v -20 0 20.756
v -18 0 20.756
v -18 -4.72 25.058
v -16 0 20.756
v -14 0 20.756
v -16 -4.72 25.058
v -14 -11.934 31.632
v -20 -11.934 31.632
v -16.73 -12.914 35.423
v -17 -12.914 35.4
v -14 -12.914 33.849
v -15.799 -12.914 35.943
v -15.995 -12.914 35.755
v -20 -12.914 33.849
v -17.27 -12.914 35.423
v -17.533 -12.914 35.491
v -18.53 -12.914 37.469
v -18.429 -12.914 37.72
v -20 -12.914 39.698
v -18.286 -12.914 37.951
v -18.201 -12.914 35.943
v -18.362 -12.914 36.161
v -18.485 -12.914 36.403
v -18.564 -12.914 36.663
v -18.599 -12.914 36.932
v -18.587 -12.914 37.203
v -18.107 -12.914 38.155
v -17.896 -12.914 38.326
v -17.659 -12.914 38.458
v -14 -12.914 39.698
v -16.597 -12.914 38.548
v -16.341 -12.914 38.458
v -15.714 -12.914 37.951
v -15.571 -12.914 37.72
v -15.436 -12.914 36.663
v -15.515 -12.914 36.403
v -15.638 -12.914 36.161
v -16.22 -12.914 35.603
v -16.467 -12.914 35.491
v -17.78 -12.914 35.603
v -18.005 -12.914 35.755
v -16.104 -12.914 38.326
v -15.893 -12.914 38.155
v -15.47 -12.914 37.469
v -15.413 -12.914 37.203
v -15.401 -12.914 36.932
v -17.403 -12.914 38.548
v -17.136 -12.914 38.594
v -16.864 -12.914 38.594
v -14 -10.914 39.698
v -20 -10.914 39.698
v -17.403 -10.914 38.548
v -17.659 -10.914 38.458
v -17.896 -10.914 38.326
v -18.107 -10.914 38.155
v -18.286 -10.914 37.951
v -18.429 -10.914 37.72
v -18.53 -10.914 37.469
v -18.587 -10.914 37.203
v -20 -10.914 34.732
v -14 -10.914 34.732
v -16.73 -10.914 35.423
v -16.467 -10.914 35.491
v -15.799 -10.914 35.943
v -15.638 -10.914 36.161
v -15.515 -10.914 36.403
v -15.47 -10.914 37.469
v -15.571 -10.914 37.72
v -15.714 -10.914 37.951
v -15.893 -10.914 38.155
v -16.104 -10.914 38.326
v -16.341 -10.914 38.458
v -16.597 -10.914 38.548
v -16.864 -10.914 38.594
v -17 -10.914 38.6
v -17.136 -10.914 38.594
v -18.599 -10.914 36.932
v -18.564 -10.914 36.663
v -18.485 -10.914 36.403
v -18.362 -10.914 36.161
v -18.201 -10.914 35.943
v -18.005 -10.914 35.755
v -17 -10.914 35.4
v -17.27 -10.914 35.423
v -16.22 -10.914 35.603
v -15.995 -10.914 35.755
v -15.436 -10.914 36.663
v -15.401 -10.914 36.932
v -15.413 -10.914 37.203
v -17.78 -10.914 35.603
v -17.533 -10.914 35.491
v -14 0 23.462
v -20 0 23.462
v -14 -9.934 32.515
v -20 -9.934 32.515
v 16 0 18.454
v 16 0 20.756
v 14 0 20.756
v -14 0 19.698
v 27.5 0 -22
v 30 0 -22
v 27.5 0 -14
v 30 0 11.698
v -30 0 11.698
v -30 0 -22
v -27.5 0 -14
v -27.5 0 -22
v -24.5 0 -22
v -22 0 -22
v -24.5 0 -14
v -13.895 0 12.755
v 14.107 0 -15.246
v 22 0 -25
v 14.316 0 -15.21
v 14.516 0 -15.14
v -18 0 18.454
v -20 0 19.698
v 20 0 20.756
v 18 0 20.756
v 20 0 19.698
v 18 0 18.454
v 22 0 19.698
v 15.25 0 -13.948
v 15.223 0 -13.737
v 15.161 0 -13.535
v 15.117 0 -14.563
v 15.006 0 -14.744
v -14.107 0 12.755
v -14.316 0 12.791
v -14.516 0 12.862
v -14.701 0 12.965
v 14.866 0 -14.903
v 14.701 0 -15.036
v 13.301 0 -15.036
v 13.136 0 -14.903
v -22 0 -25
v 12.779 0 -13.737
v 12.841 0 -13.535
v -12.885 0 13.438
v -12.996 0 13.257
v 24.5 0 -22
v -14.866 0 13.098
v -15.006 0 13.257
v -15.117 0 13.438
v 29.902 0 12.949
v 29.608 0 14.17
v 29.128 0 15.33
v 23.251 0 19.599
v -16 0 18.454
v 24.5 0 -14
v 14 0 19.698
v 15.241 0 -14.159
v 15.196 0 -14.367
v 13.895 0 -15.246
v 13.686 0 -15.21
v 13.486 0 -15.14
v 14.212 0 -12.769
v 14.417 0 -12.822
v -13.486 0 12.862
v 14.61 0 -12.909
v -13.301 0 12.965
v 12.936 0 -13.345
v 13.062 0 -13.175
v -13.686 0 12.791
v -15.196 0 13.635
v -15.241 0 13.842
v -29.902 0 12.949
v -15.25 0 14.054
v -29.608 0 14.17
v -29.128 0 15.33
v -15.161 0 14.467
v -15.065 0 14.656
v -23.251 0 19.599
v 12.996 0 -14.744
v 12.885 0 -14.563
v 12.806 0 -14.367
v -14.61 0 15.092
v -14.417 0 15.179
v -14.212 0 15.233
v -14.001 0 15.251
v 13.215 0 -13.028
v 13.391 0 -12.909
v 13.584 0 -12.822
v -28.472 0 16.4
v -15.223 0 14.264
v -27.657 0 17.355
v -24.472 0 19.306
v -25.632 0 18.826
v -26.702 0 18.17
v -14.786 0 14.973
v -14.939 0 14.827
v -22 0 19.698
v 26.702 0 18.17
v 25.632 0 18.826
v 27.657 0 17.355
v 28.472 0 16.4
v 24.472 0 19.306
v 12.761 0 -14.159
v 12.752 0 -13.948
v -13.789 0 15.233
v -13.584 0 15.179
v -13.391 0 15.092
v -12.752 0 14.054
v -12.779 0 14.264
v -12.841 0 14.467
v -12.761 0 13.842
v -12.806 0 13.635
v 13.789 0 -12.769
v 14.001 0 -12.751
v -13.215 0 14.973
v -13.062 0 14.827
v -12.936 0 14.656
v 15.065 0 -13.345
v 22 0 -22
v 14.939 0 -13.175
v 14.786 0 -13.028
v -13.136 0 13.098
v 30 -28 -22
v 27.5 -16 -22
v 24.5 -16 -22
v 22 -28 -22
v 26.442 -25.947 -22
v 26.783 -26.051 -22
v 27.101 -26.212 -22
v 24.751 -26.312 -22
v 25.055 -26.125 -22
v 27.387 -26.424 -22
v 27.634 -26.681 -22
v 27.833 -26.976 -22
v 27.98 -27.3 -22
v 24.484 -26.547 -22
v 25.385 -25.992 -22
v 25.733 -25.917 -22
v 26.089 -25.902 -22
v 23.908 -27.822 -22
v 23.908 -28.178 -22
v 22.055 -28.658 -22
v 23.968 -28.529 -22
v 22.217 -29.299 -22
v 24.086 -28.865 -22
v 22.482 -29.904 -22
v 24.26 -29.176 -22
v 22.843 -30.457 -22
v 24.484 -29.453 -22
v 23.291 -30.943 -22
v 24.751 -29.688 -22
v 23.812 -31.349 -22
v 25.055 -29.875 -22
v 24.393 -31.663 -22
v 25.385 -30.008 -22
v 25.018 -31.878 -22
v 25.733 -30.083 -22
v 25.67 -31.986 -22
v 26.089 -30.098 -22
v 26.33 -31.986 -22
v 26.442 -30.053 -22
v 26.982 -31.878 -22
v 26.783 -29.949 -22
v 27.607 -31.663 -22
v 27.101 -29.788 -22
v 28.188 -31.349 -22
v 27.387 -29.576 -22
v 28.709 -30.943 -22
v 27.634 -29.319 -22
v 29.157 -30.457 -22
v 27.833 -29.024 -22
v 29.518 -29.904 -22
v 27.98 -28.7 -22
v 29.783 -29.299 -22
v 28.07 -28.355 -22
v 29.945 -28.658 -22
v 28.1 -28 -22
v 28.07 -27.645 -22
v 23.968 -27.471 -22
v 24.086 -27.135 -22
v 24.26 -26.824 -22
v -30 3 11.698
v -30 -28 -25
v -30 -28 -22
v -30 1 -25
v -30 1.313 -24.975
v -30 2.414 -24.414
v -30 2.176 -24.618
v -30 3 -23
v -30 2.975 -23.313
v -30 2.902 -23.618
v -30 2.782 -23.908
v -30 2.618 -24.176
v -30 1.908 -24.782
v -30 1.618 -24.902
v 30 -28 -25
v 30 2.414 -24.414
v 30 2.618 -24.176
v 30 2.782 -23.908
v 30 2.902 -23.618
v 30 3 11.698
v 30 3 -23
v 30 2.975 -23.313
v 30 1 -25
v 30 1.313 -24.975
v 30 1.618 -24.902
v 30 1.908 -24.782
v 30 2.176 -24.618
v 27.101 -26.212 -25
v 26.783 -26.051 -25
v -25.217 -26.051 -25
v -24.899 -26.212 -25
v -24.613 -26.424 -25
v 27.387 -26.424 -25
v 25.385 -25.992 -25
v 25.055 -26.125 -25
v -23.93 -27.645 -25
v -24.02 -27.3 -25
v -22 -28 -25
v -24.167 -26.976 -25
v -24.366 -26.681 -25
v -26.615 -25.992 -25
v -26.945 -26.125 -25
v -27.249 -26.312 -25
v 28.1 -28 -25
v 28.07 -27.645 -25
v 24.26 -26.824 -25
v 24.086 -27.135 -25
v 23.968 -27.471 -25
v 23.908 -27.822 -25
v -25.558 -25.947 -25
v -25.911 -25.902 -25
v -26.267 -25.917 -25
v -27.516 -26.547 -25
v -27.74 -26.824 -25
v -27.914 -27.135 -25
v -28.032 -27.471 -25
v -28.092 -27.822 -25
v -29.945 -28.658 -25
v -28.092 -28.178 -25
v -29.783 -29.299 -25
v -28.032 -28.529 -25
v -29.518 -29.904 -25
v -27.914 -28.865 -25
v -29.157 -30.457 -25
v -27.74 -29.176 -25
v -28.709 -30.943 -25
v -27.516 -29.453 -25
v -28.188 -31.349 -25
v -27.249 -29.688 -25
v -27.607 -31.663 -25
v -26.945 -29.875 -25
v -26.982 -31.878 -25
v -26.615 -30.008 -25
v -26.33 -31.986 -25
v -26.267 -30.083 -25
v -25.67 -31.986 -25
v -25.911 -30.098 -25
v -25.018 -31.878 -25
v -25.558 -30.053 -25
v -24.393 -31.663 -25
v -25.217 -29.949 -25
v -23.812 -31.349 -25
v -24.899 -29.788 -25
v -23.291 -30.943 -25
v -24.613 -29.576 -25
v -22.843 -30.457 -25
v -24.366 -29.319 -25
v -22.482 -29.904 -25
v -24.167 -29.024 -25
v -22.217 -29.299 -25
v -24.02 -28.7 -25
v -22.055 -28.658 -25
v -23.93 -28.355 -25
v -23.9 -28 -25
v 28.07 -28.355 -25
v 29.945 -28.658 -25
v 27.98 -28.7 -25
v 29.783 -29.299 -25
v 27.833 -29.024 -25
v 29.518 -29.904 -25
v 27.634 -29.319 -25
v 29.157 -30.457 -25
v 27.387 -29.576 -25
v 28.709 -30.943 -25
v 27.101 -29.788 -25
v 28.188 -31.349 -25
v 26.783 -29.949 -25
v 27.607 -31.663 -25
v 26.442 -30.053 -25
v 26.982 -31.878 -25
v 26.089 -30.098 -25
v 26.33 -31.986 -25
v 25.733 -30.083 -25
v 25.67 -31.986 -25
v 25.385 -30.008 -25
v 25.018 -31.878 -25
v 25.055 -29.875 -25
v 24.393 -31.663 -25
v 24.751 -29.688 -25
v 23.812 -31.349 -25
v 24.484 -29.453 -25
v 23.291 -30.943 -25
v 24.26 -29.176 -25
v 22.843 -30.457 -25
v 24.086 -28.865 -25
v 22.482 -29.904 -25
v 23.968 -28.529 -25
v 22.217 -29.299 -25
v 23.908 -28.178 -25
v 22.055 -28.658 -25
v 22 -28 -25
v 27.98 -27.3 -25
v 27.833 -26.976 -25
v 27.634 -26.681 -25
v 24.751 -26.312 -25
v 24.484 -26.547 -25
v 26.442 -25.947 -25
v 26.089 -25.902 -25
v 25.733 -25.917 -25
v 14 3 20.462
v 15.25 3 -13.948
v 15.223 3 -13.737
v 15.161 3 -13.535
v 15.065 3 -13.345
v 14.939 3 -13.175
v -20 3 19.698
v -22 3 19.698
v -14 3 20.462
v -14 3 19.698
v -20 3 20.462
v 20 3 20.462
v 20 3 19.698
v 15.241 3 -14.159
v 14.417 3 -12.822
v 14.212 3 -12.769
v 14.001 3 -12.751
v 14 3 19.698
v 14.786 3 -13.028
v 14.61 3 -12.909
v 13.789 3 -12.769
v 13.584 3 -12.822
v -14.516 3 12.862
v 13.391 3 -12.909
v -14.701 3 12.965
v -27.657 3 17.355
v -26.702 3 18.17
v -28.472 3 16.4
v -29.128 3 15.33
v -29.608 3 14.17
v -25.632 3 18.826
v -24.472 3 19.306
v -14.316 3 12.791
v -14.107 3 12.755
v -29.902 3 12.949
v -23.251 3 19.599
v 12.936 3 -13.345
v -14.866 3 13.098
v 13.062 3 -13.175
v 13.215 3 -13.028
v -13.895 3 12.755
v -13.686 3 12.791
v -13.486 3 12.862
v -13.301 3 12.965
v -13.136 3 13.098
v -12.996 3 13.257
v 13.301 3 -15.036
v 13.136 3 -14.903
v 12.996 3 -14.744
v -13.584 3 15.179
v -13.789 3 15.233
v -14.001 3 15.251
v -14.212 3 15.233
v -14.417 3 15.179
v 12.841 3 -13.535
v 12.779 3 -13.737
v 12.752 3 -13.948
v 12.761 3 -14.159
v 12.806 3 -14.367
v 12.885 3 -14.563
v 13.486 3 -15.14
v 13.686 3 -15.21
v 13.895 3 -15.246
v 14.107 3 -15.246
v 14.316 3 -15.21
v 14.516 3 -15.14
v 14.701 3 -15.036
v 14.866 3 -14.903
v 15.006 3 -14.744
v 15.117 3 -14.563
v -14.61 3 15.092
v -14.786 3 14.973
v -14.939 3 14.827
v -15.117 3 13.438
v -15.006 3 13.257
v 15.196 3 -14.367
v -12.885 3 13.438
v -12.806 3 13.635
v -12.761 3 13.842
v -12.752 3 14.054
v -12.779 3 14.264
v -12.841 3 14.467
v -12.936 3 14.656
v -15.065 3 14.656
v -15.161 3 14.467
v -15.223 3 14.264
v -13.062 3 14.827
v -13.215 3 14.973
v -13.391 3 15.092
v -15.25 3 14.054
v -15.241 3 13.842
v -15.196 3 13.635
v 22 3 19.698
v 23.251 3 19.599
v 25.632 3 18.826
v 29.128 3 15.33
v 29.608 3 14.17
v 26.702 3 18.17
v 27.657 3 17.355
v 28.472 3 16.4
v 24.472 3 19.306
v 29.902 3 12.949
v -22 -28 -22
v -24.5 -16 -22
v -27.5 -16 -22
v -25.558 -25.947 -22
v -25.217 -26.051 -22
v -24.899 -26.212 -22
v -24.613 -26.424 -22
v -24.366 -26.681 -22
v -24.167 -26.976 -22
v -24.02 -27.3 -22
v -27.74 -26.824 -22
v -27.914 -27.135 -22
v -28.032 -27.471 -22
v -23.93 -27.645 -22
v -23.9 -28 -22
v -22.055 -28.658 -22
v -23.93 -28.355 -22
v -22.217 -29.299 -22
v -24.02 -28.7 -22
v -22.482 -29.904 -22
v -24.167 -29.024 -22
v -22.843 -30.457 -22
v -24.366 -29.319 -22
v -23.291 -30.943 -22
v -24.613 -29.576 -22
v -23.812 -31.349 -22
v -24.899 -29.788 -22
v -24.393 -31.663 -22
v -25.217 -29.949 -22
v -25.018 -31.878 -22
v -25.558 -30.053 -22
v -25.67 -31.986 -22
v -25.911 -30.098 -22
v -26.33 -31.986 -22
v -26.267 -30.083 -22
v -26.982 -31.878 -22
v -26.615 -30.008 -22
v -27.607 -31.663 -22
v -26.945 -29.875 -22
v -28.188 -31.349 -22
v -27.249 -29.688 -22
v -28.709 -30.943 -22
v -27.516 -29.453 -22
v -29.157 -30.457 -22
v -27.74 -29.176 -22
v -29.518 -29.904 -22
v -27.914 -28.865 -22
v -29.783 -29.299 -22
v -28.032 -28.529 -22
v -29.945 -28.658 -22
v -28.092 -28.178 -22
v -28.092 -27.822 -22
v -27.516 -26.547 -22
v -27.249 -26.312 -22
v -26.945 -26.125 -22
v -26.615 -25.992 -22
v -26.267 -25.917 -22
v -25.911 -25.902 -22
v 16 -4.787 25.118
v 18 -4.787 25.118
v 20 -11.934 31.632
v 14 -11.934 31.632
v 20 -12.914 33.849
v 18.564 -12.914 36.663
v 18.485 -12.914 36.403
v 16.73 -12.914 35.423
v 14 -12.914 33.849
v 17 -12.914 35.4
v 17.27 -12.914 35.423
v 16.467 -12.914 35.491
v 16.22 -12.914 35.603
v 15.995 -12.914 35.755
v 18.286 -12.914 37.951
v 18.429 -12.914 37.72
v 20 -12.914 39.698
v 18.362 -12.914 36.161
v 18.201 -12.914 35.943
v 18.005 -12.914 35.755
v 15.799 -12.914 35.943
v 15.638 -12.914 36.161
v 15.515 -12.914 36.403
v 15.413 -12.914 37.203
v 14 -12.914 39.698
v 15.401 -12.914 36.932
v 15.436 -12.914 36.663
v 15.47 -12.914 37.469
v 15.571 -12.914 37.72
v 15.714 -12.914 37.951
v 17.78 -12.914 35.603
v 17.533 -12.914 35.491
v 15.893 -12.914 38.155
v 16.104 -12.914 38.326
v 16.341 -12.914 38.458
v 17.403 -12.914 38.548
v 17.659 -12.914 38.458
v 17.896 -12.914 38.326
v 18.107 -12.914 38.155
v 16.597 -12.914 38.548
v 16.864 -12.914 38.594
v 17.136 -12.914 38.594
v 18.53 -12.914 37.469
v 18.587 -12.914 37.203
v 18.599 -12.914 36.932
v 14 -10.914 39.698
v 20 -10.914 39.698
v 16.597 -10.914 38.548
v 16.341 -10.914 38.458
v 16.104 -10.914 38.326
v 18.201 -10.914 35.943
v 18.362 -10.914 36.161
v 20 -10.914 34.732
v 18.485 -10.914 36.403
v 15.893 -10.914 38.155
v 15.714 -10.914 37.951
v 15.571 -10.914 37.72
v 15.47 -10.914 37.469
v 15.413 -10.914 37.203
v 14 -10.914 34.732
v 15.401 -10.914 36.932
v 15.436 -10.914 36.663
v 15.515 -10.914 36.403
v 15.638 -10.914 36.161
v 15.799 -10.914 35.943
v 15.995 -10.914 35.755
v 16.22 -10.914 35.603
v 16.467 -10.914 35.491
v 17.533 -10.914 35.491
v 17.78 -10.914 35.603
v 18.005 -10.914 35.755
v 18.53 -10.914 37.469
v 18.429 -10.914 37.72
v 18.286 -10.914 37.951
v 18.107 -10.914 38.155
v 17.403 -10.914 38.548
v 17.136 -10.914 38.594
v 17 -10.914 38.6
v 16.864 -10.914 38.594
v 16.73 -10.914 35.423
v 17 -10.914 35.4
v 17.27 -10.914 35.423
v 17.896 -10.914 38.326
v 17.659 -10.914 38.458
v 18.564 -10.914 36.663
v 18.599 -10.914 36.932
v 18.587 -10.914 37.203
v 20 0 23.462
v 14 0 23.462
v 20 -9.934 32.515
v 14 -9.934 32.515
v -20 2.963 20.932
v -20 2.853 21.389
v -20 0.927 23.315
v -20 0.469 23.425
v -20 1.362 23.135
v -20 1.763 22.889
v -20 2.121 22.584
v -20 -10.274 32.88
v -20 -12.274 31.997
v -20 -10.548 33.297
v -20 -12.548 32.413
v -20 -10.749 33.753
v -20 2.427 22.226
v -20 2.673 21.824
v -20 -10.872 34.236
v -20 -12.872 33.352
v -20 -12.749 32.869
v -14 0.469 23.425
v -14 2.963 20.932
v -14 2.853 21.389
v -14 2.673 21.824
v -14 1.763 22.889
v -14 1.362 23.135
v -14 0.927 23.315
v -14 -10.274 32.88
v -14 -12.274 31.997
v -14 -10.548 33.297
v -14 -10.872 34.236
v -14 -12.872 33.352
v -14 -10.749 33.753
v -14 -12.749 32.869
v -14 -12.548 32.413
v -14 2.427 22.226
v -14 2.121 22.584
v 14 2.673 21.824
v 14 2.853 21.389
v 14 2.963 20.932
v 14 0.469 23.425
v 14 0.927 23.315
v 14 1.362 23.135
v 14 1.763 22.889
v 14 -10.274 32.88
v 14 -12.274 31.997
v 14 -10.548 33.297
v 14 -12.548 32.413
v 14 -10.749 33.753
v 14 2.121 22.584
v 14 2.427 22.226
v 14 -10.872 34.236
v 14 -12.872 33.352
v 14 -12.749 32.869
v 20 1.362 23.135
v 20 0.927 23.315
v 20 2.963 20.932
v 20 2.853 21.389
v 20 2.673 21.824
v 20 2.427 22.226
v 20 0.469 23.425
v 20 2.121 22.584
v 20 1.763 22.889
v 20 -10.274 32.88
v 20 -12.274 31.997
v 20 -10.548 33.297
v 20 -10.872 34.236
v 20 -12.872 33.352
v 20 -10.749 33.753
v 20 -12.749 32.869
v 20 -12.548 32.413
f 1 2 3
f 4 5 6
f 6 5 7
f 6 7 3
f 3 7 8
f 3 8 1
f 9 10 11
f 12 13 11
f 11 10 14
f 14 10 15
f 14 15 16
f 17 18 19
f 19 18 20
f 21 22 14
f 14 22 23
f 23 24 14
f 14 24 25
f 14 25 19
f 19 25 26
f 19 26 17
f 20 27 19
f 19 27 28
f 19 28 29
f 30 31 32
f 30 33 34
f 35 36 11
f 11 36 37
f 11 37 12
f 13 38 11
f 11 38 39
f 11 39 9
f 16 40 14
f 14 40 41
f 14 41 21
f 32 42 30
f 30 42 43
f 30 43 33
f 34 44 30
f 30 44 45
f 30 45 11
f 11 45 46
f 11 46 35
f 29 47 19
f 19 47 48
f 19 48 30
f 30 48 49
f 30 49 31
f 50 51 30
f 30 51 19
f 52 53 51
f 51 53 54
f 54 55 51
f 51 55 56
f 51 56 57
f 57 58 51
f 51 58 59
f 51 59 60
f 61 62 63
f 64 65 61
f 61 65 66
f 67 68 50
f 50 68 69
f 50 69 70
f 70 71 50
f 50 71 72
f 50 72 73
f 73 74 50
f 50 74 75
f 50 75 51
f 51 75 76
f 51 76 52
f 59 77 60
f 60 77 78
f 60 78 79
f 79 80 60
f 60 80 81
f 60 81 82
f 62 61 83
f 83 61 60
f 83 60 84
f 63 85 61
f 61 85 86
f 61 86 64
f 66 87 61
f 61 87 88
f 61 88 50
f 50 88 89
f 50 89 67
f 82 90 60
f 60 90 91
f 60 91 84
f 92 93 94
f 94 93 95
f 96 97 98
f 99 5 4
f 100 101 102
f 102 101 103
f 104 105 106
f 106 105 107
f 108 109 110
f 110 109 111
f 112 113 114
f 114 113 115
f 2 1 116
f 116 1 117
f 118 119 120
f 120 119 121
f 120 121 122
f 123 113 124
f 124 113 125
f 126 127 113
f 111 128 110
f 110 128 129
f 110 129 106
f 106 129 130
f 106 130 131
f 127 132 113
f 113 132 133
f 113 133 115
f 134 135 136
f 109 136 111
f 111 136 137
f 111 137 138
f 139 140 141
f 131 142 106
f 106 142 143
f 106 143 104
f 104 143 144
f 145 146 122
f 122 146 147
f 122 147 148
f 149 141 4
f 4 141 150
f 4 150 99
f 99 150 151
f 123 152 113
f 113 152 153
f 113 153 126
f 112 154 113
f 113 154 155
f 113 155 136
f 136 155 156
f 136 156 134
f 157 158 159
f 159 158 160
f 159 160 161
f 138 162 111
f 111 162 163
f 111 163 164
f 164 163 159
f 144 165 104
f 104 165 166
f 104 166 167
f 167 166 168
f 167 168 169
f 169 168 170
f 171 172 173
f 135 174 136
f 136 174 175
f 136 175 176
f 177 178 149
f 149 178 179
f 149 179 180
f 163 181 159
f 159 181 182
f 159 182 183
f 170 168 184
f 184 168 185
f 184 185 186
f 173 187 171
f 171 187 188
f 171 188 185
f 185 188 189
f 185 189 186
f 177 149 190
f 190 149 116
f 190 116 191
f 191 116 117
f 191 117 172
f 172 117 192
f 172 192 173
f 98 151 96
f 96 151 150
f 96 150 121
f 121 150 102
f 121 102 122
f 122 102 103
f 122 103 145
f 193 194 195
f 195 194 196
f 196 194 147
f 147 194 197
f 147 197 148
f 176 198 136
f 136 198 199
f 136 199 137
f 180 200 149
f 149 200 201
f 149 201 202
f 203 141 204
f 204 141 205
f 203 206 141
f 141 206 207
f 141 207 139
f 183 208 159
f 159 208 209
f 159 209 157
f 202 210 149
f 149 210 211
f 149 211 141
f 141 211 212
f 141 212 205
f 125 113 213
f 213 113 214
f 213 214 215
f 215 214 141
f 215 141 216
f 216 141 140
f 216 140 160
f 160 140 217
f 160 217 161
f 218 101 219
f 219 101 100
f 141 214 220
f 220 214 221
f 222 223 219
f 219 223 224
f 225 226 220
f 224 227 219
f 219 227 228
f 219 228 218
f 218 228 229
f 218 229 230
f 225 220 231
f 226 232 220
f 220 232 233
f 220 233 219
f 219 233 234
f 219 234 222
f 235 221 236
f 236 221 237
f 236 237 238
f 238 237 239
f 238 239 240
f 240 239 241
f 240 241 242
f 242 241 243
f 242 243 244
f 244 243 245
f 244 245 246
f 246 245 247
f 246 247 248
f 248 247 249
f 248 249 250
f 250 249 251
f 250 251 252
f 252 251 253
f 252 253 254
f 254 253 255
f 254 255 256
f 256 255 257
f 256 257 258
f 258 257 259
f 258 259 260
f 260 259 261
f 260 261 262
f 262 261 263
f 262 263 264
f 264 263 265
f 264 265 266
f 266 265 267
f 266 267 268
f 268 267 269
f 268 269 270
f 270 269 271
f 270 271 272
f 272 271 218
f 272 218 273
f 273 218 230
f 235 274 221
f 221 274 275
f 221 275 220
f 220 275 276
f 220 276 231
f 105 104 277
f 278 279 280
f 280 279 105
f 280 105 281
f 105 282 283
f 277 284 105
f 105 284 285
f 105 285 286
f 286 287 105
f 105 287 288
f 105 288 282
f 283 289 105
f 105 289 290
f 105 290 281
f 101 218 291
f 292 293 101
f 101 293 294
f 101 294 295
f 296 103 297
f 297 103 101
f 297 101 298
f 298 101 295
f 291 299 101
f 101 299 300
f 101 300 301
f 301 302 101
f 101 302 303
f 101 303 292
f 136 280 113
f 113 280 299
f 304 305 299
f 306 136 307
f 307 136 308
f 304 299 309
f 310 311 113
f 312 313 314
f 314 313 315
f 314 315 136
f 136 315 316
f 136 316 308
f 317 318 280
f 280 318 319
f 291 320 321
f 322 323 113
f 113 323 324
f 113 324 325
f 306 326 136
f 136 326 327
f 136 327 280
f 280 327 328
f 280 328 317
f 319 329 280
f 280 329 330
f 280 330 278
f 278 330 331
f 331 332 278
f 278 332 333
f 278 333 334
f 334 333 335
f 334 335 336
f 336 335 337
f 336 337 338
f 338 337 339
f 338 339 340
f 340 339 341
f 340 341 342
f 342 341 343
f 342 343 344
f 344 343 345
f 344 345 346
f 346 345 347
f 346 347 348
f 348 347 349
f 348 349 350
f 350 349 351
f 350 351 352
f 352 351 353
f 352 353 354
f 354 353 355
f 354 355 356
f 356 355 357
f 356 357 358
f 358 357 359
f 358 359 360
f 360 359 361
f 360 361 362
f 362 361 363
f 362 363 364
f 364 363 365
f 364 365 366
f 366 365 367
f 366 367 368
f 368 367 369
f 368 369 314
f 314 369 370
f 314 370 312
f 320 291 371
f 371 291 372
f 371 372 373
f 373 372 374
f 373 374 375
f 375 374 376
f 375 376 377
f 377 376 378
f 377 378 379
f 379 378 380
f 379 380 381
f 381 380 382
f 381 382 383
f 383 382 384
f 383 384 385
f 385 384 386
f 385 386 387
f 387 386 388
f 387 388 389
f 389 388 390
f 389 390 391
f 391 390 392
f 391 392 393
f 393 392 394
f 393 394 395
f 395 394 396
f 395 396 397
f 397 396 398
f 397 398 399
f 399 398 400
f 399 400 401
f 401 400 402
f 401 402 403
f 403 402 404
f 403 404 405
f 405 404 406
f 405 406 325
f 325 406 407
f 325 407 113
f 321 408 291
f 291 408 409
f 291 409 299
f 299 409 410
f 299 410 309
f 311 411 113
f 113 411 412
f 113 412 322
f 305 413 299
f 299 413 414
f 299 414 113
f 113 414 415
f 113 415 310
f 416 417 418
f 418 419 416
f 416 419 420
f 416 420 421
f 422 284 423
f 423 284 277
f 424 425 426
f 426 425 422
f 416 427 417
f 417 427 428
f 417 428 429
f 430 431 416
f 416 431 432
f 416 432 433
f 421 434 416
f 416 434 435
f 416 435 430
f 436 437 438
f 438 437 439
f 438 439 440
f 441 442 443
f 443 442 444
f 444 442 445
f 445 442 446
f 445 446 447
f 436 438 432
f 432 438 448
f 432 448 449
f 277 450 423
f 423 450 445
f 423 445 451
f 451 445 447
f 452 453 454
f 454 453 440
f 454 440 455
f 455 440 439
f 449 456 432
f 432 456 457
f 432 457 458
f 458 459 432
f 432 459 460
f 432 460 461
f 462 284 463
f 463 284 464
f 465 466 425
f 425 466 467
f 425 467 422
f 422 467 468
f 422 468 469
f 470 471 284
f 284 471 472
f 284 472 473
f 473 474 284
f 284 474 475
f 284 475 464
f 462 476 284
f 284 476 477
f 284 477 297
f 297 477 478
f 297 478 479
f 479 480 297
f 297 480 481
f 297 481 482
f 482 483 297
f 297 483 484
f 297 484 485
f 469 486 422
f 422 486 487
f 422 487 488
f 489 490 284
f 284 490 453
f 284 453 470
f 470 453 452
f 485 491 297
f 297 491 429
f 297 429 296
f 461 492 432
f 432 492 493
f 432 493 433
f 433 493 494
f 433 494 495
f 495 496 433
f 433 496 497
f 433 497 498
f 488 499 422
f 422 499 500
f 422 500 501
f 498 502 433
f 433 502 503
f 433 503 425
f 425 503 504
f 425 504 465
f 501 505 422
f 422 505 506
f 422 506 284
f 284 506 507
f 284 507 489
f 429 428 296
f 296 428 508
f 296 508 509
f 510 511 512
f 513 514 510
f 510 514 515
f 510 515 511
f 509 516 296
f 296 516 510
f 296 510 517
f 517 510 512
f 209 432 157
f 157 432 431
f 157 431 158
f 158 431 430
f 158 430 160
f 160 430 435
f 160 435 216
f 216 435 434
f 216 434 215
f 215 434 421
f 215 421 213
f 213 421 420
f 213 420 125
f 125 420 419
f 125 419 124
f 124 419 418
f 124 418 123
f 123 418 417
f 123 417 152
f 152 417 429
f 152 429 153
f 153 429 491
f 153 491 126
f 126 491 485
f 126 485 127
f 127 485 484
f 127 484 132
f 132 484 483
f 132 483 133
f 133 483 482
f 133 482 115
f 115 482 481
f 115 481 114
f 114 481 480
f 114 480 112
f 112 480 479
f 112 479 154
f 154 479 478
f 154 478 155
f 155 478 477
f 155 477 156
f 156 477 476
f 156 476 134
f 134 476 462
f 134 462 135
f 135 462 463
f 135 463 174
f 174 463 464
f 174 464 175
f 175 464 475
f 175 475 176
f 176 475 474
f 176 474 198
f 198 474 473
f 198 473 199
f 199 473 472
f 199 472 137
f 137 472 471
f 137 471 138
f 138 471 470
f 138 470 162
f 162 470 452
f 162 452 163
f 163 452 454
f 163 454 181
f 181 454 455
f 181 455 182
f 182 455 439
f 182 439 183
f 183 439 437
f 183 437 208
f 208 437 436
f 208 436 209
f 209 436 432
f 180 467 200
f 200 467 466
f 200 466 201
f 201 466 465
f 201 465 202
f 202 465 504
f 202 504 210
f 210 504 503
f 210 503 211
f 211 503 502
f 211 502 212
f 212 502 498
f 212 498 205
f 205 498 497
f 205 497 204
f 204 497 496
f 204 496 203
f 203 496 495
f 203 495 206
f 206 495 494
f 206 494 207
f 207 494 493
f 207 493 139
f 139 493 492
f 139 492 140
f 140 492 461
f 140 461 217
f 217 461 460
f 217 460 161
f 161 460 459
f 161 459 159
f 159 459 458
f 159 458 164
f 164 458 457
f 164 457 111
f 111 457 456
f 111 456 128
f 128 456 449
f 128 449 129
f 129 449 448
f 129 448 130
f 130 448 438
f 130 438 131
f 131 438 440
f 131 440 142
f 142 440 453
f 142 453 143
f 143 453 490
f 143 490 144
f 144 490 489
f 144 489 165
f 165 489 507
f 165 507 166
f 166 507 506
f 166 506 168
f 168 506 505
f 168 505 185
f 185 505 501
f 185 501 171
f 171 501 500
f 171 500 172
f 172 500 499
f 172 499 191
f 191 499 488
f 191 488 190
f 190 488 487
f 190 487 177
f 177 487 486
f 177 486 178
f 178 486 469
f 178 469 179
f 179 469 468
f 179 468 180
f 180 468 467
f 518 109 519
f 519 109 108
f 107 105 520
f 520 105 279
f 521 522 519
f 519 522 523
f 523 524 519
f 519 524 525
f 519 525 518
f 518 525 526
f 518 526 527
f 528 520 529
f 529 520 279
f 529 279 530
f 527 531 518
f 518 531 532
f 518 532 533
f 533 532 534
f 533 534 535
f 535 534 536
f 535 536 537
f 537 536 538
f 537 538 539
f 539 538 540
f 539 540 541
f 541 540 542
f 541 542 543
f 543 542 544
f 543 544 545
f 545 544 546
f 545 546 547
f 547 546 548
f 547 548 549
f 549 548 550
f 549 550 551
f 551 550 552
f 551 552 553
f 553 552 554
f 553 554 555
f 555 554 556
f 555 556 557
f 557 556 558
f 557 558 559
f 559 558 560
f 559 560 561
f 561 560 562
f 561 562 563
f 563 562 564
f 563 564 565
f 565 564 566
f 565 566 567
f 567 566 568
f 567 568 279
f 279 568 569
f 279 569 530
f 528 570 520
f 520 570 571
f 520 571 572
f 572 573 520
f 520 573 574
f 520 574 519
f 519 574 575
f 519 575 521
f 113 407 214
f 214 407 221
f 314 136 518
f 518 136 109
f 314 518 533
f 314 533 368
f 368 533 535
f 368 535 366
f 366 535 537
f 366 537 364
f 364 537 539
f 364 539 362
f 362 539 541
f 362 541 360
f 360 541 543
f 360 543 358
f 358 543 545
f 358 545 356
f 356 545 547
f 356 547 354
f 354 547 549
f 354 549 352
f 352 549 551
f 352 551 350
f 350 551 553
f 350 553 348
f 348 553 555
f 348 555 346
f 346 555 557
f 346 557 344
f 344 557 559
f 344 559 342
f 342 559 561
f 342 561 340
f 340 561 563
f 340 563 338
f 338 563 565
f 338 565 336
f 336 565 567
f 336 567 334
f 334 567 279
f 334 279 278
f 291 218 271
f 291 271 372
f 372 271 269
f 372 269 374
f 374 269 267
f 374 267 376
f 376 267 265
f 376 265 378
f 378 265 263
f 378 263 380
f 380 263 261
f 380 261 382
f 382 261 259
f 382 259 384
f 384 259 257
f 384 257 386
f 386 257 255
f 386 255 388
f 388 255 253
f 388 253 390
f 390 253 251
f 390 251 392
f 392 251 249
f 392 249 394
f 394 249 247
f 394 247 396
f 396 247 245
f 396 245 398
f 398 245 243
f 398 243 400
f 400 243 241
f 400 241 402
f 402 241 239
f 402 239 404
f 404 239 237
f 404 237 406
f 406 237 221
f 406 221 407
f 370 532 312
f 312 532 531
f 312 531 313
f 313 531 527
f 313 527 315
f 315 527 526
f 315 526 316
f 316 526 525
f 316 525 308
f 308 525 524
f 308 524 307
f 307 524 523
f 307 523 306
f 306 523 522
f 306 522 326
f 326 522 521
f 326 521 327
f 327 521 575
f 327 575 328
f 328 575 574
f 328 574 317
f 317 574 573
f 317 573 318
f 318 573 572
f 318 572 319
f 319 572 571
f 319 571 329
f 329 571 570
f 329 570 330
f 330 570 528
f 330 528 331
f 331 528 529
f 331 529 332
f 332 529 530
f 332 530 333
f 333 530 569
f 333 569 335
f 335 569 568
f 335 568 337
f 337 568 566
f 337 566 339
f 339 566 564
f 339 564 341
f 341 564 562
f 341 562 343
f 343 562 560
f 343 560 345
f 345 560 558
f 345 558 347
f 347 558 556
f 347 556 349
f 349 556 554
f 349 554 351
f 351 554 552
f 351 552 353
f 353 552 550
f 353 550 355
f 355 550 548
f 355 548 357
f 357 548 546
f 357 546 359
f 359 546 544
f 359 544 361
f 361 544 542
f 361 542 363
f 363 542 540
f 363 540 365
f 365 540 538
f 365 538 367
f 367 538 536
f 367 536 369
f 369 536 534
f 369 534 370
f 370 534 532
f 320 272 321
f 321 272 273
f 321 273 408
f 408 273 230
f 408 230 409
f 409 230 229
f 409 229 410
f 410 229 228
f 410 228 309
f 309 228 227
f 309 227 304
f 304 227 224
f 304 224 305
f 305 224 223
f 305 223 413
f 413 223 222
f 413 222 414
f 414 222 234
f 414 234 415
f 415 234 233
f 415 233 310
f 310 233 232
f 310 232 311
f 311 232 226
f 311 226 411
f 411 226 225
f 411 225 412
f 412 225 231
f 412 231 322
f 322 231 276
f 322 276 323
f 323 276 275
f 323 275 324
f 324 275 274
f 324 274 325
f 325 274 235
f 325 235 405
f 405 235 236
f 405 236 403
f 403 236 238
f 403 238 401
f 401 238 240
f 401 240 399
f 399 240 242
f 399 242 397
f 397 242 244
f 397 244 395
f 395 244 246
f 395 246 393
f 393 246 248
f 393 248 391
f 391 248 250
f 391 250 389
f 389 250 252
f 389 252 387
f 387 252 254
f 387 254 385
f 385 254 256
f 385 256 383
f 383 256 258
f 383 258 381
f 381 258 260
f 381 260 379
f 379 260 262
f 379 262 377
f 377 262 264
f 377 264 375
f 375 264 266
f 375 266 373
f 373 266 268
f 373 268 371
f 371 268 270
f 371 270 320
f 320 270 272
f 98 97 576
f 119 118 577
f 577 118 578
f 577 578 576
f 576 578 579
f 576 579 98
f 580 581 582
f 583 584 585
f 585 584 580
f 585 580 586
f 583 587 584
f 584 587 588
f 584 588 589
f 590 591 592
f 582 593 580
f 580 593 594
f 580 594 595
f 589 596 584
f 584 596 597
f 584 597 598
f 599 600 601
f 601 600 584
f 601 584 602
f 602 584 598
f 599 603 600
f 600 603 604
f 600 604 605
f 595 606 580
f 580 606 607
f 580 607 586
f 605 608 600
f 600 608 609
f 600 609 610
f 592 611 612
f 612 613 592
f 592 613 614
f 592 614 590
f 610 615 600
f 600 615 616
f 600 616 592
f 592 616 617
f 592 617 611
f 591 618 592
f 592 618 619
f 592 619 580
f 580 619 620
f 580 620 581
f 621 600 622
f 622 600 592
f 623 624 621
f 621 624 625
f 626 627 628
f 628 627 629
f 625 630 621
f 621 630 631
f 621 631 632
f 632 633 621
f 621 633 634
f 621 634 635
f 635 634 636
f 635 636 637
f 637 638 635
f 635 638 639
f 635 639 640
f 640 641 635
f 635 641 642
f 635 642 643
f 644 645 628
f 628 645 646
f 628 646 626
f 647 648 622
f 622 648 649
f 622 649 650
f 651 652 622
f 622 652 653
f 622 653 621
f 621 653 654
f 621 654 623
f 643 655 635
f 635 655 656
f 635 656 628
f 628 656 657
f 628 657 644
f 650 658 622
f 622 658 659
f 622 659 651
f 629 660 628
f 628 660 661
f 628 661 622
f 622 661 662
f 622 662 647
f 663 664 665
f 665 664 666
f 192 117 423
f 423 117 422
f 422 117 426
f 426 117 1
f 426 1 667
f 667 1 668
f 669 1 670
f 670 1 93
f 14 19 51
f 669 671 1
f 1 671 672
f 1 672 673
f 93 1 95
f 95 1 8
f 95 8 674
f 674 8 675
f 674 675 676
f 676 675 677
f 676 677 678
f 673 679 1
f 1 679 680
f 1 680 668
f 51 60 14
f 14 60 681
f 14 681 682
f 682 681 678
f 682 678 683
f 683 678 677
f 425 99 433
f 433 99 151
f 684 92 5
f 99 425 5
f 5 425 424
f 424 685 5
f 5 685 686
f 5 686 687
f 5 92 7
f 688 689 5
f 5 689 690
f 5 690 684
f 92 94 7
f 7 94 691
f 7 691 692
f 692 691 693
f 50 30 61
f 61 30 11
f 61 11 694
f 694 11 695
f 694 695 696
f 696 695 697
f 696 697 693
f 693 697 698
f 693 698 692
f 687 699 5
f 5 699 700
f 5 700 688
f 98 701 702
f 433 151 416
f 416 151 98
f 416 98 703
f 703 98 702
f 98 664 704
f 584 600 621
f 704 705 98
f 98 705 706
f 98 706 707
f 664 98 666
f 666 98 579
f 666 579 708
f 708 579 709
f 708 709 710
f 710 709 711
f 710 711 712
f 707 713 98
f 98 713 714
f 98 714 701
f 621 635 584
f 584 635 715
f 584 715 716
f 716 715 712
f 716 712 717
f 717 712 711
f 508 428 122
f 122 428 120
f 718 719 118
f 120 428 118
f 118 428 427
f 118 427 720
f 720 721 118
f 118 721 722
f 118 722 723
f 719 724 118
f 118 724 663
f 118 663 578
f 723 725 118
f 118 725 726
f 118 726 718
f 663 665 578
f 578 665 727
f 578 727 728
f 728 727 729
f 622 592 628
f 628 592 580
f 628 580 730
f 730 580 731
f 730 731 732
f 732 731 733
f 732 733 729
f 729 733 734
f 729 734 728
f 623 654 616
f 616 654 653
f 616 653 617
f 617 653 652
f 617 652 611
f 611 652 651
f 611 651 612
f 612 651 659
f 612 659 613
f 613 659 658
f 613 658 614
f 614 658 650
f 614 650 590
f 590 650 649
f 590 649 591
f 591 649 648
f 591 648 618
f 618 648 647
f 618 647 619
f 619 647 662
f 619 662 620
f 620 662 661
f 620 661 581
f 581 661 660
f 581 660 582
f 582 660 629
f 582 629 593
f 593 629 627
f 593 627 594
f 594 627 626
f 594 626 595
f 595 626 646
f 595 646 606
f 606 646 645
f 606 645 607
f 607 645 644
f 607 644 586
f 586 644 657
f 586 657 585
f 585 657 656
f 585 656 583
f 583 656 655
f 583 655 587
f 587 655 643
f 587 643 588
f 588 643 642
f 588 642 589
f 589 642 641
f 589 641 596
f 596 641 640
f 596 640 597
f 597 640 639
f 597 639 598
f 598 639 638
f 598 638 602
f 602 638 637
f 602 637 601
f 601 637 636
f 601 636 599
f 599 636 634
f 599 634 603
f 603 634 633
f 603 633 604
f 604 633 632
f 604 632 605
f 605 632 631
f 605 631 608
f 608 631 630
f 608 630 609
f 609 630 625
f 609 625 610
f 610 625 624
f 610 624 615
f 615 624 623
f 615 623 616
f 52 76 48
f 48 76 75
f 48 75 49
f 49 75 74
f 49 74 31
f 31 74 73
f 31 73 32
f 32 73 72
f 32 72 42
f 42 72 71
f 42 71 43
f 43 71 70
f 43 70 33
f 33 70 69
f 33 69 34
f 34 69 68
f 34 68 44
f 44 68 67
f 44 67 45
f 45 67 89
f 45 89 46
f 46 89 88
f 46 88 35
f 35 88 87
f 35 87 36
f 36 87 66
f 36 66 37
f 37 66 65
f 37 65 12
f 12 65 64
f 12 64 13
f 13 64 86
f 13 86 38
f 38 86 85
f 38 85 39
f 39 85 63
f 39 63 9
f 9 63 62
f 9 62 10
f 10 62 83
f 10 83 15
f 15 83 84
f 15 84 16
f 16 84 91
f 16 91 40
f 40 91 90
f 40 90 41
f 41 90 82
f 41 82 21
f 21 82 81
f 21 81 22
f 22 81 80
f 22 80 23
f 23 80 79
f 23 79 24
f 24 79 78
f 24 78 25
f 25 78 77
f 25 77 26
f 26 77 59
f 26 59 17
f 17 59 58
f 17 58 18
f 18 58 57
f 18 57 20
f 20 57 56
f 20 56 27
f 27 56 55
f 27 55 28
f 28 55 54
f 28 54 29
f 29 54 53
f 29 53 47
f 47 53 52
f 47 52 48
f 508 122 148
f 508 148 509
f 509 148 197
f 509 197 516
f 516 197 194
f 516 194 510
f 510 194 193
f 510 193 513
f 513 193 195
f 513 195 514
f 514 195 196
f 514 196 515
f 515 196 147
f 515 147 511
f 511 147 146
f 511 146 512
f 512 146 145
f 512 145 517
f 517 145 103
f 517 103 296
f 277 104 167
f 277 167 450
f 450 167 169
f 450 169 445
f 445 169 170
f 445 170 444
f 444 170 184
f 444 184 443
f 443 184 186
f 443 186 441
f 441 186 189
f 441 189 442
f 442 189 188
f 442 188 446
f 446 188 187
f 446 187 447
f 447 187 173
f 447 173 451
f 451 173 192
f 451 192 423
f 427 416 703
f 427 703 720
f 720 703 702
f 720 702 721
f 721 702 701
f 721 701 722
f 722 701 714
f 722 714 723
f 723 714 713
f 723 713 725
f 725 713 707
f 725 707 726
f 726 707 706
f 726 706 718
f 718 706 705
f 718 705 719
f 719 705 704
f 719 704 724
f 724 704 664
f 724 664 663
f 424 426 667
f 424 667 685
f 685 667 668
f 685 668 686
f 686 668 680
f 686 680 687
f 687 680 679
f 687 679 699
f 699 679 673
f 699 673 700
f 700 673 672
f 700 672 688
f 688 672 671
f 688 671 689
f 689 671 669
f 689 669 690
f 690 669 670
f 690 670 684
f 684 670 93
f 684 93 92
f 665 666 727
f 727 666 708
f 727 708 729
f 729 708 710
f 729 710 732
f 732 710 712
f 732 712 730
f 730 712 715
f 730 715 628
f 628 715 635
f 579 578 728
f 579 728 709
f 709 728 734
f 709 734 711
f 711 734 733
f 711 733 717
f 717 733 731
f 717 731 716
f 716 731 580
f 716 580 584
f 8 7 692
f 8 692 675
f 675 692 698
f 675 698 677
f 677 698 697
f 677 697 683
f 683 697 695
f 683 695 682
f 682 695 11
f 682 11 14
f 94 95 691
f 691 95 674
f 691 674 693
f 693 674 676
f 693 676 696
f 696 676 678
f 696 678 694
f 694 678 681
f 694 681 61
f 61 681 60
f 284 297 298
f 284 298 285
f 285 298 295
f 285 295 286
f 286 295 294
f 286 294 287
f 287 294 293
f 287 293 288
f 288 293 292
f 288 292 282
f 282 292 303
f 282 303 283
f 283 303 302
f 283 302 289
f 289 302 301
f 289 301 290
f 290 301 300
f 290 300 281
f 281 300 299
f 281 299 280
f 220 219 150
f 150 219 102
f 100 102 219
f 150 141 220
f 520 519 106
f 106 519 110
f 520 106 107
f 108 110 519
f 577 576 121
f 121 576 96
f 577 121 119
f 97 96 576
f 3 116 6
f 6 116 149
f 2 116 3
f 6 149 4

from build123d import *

# Parameters (mm, degrees)
SKETCH_1_W          = 60
SKETCH_1_H          = 50
EXTRUDE_1_DEPTH     = 3
SKETCH_2_R          = 1.25
CUT_EXTRUDE_1_DEPTH = 3
SKETCH_4_W          = 3
SKETCH_4_H          = 28
EXTRUDE_3_DEPTH     = 60
SKETCH_5_W          = 44
SKETCH_5_H          = 28
CUT_EXTRUDE_2_DEPTH = 10
EXTRUDE_4_DEPTH     = 3
SKETCH_8_R          = 2.1
CUT_EXTRUDE_3_DEPTH = 65.288412642
EXTRUDE_5_DEPTH     = 60
SKETCH_9_W          = 10
SKETCH_9_H          = 20
SKETCH_9_W_2        = 28
CUT_EXTRUDE_4_DEPTH = 54.293490307
SKETCH_11_R         = 1.6
CUT_EXTRUDE_5_DEPTH = 54.293490307
SKETCH_12_W         = 1.537741429
SKETCH_12_H         = 3
CUT_EXTRUDE_6_DEPTH = 72.413687212
FILLET_1_R          = 8
FILLET_2_R          = 8
FILLET_3_R          = 3
FILLET_4_R          = 3
FILLET_5_R          = 2
RIB_2_REACH         = 77.736
SKETCH_14_WALL_W    = 171.36018765
SKETCH_14_WALL_H    = 3
RIB_3_REACH         = 77.736
SKETCH_16_WALL_W    = 171.36018765
SKETCH_16_WALL_H    = 3
RIB_4_REACH         = 71.346
SKETCH_17_WALL_W    = 148.898052794
SKETCH_17_WALL_H    = 2
RIB_5_REACH         = 71.346
SKETCH_18_WALL_W    = 148.810340372
SKETCH_18_WALL_H    = 2


with BuildPart() as part:
    # 草图1 → 凸台-拉伸1 (new body)
    with BuildSketch(Plane(origin=(0, 0, 0), x_dir=(1, 0, 0), z_dir=(0, 1, 0))):
        Rectangle(SKETCH_1_W, SKETCH_1_H)
    extrude(amount=EXTRUDE_1_DEPTH)

    # 草图2 → 切除-拉伸1 (cut)
    with BuildSketch(Plane(origin=(0, 3, 0), x_dir=(1, 0, 0), z_dir=(0, 1, 0))):
        with Locations(Location((-14.000714267, -14.000714267, 0), (0, 0, 270))):
            Circle(SKETCH_2_R)
        with Locations(Location((14.000714267, 14.000714267, 0), (0, 0, 270))):
            Circle(SKETCH_2_R)
    extrude(amount=-CUT_EXTRUDE_1_DEPTH, mode=Mode.SUBTRACT)

    # 草图4 → 凸台-拉伸3 (add)
    with BuildSketch(Plane(origin=(30, 0, 0), x_dir=(0, 0, -1), z_dir=(1, 0, 0))):
        with Locations((23.5, -14)):
            Rectangle(SKETCH_4_W, SKETCH_4_H)
    extrude(amount=-EXTRUDE_3_DEPTH)

    # 草图5 → 切除-拉伸2 (cut)
    with BuildSketch(Plane(origin=(0, 0, -25), x_dir=(-1, 0, 0), z_dir=(0, 0, -1))):
        with Locations((0, -14)):
            Rectangle(SKETCH_5_W, SKETCH_5_H)
    extrude(amount=-CUT_EXTRUDE_2_DEPTH, mode=Mode.SUBTRACT)

    # 草图7 → 凸台-拉伸4 (add)
    with BuildSketch(Plane.XY.offset(-22)):
        with BuildLine():
            Line((-30, -28), (-22, -28))
            ThreePointArc((-22, -28), (-26, -32), (-30, -28))
        make_face()
        with BuildLine():
            Line((22, -28), (30, -28))
            ThreePointArc((30, -28), (26, -32), (22, -28))
        make_face()
    extrude(amount=-EXTRUDE_4_DEPTH)

    # 草图8 → 切除-拉伸3 (cut, through all)
    with BuildSketch(Plane.XY.offset(-22)):
        with Locations((26, -28)):
            Circle(SKETCH_8_R)
        with Locations((-26, -28)):
            Circle(SKETCH_8_R)
    extrude(amount=-CUT_EXTRUDE_3_DEPTH, mode=Mode.SUBTRACT)

    # 草图3 → 凸台-拉伸5 (add)
    with BuildSketch(Plane(origin=(30, 0, 0), x_dir=(0, 0, -1), z_dir=(1, 0, 0))):
        Polygon((-20.756443745, 0), (-32.524054991, -12.913843028), (-39.697792397, -12.913843028), (-39.697792397, -10.913843028), (-33.407389674, -10.913843028), (-23.462258571, 0), align=None)
    extrude(amount=-EXTRUDE_5_DEPTH)

    # 草图9 → 切除-拉伸4 (cut, through all)
    with BuildSketch(Plane.XZ.offset(12.913843028)):
        with Locations((25, 29.697792397)):
            Rectangle(SKETCH_9_W, SKETCH_9_H)
        with Locations((0, 29.697792397)):
            Rectangle(SKETCH_9_W_2, SKETCH_9_H)
        with Locations((-25, 29.697792397)):
            Rectangle(SKETCH_9_W, SKETCH_9_H)
    extrude(amount=-CUT_EXTRUDE_4_DEPTH, mode=Mode.SUBTRACT)

    # 草图11 → 切除-拉伸5 (cut, through all)
    with BuildSketch(Plane.XZ.offset(12.913843028)):
        with Locations(Location((17, 37, 0), (0, 0, 270))):
            Circle(SKETCH_11_R)
        with Locations(Location((-17, 37, 0), (0, 0, 270))):
            Circle(SKETCH_11_R)
    extrude(amount=-CUT_EXTRUDE_5_DEPTH, mode=Mode.SUBTRACT)

    # 草图12 → 切除-拉伸6 (cut, through all)
    with BuildSketch(Plane(origin=(20, 0, 0), x_dir=(0, 0, -1), z_dir=(1, 0, 0))):
        with Locations((-24.231129286, 1.5)):
            Rectangle(SKETCH_12_W, SKETCH_12_H)
    extrude(amount=-CUT_EXTRUDE_6_DEPTH, mode=Mode.SUBTRACT)

    # 圆角1
    fillet_1_edges = [part.edges().sort_by_distance(p)[0] for p in [
        (30, 1.5, 19.697792397),
    ]]
    fillet(fillet_1_edges, radius=FILLET_1_R)

    # 圆角2
    fillet_2_edges = [part.edges().sort_by_distance(p)[0] for p in [
        (-30, 1.5, 19.697792397),
    ]]
    fillet(fillet_2_edges, radius=FILLET_2_R)

    # 圆角3
    fillet_3_edges = [part.edges().sort_by_distance(p)[0] for p in [
        (17, 3, 23.462258571),
        (-17, 3, 23.462258571),
    ]]
    fillet(fillet_3_edges, radius=FILLET_3_R - 0.0001)  # a hair under: the kernel refuses the full size

    # 圆角4
    fillet_4_edges = [part.edges().sort_by_distance(p)[0] for p in [
        (-17, -10.913843028, 33.407389674),
        (17, -10.913843028, 33.407389674),
        (-17, -12.913843028, 32.524054991),
        (17, -12.913843028, 32.524054991),
    ]]
    fillet(fillet_4_edges, radius=FILLET_4_R)

    # 圆角5
    fillet_5_edges = [part.edges().sort_by_distance(p)[0] for p in [
        (0, 3, -25),
    ]]
    fillet(fillet_5_edges, radius=FILLET_5_R)

    # 草图14 wall → 筋2 (add, up to next)
    with BuildSketch(Plane(origin=(26, -8, -18), x_dir=(0, -0.894427191, -0.4472135955), z_dir=(0, 0.4472135955, -0.894427191)), mode=Mode.PRIVATE) as rib_2_sk1:
        Rectangle(SKETCH_14_WALL_W, SKETCH_14_WALL_H)
    rib_2_tool1 = extrude(rib_2_sk1.sketch, amount=RIB_2_REACH, mode=Mode.PRIVATE) - part.part
    add(rib_2_tool1.solids().sort_by_distance((26, -8, -18))[0])

    # 草图16 wall → 筋3 (add, up to next)
    with BuildSketch(Plane(origin=(-26, -8, -18), x_dir=(0, -0.894427191, -0.4472135955), z_dir=(0, -0.4472135955, 0.894427191)), mode=Mode.PRIVATE) as rib_3_sk1:
        Rectangle(SKETCH_16_WALL_W, SKETCH_16_WALL_H)
    rib_3_tool1 = extrude(rib_3_sk1.sketch, amount=-RIB_3_REACH, mode=Mode.PRIVATE) - part.part
    add(rib_3_tool1.solids().sort_by_distance((-26, -8, -18))[0])

    # 草图17 wall → 筋4 (add, up to next)
    with BuildSketch(Plane(origin=(17, -2.393367573, 21.786066703), x_dir=(0, 0.583365802334, -0.81220954234), z_dir=(0, 0.81220954234, 0.583365802334)), mode=Mode.PRIVATE) as rib_4_sk1:
        Rectangle(SKETCH_17_WALL_W, SKETCH_17_WALL_H)
    rib_4_tool1 = extrude(rib_4_sk1.sketch, amount=RIB_4_REACH, mode=Mode.PRIVATE) - part.part
    add(rib_4_tool1.solids().sort_by_distance((17, -2.393367573, 21.786066703))[0])

    # 草图18 wall → 筋5 (add, up to next)
    with BuildSketch(Plane(origin=(-17, -2.360222573, 21.75586365), x_dir=(0, -0.581503003153, 0.813544256525), z_dir=(0, 0.813544256525, 0.581503003153)), mode=Mode.PRIVATE) as rib_5_sk1:
        Rectangle(SKETCH_18_WALL_W, SKETCH_18_WALL_H)
    rib_5_tool1 = extrude(rib_5_sk1.sketch, amount=RIB_5_REACH, mode=Mode.PRIVATE) - part.part
    add(rib_5_tool1.solids().sort_by_distance((-17, -2.360222573, 21.75586365))[0])


solid = part.part
